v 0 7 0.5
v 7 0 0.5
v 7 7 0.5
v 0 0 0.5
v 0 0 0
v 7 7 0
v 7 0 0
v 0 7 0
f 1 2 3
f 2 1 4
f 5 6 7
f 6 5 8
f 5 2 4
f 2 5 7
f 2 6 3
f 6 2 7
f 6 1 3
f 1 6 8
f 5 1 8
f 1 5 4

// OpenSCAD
/* Warning, this is a very basic generator with a lot of approximation 
input data : [XFBGA, TZX, 7x7x0.5mm, 144, , A, C04-00337A]
generated by com.zoubworld.electronics.cad.model3d.Basic
Date : Sun Feb 15 10:50:48 CET 2026
*/

//body
color("black")
translate([0,0,0])
cube([7.0,7.0,0.5], center=false);
